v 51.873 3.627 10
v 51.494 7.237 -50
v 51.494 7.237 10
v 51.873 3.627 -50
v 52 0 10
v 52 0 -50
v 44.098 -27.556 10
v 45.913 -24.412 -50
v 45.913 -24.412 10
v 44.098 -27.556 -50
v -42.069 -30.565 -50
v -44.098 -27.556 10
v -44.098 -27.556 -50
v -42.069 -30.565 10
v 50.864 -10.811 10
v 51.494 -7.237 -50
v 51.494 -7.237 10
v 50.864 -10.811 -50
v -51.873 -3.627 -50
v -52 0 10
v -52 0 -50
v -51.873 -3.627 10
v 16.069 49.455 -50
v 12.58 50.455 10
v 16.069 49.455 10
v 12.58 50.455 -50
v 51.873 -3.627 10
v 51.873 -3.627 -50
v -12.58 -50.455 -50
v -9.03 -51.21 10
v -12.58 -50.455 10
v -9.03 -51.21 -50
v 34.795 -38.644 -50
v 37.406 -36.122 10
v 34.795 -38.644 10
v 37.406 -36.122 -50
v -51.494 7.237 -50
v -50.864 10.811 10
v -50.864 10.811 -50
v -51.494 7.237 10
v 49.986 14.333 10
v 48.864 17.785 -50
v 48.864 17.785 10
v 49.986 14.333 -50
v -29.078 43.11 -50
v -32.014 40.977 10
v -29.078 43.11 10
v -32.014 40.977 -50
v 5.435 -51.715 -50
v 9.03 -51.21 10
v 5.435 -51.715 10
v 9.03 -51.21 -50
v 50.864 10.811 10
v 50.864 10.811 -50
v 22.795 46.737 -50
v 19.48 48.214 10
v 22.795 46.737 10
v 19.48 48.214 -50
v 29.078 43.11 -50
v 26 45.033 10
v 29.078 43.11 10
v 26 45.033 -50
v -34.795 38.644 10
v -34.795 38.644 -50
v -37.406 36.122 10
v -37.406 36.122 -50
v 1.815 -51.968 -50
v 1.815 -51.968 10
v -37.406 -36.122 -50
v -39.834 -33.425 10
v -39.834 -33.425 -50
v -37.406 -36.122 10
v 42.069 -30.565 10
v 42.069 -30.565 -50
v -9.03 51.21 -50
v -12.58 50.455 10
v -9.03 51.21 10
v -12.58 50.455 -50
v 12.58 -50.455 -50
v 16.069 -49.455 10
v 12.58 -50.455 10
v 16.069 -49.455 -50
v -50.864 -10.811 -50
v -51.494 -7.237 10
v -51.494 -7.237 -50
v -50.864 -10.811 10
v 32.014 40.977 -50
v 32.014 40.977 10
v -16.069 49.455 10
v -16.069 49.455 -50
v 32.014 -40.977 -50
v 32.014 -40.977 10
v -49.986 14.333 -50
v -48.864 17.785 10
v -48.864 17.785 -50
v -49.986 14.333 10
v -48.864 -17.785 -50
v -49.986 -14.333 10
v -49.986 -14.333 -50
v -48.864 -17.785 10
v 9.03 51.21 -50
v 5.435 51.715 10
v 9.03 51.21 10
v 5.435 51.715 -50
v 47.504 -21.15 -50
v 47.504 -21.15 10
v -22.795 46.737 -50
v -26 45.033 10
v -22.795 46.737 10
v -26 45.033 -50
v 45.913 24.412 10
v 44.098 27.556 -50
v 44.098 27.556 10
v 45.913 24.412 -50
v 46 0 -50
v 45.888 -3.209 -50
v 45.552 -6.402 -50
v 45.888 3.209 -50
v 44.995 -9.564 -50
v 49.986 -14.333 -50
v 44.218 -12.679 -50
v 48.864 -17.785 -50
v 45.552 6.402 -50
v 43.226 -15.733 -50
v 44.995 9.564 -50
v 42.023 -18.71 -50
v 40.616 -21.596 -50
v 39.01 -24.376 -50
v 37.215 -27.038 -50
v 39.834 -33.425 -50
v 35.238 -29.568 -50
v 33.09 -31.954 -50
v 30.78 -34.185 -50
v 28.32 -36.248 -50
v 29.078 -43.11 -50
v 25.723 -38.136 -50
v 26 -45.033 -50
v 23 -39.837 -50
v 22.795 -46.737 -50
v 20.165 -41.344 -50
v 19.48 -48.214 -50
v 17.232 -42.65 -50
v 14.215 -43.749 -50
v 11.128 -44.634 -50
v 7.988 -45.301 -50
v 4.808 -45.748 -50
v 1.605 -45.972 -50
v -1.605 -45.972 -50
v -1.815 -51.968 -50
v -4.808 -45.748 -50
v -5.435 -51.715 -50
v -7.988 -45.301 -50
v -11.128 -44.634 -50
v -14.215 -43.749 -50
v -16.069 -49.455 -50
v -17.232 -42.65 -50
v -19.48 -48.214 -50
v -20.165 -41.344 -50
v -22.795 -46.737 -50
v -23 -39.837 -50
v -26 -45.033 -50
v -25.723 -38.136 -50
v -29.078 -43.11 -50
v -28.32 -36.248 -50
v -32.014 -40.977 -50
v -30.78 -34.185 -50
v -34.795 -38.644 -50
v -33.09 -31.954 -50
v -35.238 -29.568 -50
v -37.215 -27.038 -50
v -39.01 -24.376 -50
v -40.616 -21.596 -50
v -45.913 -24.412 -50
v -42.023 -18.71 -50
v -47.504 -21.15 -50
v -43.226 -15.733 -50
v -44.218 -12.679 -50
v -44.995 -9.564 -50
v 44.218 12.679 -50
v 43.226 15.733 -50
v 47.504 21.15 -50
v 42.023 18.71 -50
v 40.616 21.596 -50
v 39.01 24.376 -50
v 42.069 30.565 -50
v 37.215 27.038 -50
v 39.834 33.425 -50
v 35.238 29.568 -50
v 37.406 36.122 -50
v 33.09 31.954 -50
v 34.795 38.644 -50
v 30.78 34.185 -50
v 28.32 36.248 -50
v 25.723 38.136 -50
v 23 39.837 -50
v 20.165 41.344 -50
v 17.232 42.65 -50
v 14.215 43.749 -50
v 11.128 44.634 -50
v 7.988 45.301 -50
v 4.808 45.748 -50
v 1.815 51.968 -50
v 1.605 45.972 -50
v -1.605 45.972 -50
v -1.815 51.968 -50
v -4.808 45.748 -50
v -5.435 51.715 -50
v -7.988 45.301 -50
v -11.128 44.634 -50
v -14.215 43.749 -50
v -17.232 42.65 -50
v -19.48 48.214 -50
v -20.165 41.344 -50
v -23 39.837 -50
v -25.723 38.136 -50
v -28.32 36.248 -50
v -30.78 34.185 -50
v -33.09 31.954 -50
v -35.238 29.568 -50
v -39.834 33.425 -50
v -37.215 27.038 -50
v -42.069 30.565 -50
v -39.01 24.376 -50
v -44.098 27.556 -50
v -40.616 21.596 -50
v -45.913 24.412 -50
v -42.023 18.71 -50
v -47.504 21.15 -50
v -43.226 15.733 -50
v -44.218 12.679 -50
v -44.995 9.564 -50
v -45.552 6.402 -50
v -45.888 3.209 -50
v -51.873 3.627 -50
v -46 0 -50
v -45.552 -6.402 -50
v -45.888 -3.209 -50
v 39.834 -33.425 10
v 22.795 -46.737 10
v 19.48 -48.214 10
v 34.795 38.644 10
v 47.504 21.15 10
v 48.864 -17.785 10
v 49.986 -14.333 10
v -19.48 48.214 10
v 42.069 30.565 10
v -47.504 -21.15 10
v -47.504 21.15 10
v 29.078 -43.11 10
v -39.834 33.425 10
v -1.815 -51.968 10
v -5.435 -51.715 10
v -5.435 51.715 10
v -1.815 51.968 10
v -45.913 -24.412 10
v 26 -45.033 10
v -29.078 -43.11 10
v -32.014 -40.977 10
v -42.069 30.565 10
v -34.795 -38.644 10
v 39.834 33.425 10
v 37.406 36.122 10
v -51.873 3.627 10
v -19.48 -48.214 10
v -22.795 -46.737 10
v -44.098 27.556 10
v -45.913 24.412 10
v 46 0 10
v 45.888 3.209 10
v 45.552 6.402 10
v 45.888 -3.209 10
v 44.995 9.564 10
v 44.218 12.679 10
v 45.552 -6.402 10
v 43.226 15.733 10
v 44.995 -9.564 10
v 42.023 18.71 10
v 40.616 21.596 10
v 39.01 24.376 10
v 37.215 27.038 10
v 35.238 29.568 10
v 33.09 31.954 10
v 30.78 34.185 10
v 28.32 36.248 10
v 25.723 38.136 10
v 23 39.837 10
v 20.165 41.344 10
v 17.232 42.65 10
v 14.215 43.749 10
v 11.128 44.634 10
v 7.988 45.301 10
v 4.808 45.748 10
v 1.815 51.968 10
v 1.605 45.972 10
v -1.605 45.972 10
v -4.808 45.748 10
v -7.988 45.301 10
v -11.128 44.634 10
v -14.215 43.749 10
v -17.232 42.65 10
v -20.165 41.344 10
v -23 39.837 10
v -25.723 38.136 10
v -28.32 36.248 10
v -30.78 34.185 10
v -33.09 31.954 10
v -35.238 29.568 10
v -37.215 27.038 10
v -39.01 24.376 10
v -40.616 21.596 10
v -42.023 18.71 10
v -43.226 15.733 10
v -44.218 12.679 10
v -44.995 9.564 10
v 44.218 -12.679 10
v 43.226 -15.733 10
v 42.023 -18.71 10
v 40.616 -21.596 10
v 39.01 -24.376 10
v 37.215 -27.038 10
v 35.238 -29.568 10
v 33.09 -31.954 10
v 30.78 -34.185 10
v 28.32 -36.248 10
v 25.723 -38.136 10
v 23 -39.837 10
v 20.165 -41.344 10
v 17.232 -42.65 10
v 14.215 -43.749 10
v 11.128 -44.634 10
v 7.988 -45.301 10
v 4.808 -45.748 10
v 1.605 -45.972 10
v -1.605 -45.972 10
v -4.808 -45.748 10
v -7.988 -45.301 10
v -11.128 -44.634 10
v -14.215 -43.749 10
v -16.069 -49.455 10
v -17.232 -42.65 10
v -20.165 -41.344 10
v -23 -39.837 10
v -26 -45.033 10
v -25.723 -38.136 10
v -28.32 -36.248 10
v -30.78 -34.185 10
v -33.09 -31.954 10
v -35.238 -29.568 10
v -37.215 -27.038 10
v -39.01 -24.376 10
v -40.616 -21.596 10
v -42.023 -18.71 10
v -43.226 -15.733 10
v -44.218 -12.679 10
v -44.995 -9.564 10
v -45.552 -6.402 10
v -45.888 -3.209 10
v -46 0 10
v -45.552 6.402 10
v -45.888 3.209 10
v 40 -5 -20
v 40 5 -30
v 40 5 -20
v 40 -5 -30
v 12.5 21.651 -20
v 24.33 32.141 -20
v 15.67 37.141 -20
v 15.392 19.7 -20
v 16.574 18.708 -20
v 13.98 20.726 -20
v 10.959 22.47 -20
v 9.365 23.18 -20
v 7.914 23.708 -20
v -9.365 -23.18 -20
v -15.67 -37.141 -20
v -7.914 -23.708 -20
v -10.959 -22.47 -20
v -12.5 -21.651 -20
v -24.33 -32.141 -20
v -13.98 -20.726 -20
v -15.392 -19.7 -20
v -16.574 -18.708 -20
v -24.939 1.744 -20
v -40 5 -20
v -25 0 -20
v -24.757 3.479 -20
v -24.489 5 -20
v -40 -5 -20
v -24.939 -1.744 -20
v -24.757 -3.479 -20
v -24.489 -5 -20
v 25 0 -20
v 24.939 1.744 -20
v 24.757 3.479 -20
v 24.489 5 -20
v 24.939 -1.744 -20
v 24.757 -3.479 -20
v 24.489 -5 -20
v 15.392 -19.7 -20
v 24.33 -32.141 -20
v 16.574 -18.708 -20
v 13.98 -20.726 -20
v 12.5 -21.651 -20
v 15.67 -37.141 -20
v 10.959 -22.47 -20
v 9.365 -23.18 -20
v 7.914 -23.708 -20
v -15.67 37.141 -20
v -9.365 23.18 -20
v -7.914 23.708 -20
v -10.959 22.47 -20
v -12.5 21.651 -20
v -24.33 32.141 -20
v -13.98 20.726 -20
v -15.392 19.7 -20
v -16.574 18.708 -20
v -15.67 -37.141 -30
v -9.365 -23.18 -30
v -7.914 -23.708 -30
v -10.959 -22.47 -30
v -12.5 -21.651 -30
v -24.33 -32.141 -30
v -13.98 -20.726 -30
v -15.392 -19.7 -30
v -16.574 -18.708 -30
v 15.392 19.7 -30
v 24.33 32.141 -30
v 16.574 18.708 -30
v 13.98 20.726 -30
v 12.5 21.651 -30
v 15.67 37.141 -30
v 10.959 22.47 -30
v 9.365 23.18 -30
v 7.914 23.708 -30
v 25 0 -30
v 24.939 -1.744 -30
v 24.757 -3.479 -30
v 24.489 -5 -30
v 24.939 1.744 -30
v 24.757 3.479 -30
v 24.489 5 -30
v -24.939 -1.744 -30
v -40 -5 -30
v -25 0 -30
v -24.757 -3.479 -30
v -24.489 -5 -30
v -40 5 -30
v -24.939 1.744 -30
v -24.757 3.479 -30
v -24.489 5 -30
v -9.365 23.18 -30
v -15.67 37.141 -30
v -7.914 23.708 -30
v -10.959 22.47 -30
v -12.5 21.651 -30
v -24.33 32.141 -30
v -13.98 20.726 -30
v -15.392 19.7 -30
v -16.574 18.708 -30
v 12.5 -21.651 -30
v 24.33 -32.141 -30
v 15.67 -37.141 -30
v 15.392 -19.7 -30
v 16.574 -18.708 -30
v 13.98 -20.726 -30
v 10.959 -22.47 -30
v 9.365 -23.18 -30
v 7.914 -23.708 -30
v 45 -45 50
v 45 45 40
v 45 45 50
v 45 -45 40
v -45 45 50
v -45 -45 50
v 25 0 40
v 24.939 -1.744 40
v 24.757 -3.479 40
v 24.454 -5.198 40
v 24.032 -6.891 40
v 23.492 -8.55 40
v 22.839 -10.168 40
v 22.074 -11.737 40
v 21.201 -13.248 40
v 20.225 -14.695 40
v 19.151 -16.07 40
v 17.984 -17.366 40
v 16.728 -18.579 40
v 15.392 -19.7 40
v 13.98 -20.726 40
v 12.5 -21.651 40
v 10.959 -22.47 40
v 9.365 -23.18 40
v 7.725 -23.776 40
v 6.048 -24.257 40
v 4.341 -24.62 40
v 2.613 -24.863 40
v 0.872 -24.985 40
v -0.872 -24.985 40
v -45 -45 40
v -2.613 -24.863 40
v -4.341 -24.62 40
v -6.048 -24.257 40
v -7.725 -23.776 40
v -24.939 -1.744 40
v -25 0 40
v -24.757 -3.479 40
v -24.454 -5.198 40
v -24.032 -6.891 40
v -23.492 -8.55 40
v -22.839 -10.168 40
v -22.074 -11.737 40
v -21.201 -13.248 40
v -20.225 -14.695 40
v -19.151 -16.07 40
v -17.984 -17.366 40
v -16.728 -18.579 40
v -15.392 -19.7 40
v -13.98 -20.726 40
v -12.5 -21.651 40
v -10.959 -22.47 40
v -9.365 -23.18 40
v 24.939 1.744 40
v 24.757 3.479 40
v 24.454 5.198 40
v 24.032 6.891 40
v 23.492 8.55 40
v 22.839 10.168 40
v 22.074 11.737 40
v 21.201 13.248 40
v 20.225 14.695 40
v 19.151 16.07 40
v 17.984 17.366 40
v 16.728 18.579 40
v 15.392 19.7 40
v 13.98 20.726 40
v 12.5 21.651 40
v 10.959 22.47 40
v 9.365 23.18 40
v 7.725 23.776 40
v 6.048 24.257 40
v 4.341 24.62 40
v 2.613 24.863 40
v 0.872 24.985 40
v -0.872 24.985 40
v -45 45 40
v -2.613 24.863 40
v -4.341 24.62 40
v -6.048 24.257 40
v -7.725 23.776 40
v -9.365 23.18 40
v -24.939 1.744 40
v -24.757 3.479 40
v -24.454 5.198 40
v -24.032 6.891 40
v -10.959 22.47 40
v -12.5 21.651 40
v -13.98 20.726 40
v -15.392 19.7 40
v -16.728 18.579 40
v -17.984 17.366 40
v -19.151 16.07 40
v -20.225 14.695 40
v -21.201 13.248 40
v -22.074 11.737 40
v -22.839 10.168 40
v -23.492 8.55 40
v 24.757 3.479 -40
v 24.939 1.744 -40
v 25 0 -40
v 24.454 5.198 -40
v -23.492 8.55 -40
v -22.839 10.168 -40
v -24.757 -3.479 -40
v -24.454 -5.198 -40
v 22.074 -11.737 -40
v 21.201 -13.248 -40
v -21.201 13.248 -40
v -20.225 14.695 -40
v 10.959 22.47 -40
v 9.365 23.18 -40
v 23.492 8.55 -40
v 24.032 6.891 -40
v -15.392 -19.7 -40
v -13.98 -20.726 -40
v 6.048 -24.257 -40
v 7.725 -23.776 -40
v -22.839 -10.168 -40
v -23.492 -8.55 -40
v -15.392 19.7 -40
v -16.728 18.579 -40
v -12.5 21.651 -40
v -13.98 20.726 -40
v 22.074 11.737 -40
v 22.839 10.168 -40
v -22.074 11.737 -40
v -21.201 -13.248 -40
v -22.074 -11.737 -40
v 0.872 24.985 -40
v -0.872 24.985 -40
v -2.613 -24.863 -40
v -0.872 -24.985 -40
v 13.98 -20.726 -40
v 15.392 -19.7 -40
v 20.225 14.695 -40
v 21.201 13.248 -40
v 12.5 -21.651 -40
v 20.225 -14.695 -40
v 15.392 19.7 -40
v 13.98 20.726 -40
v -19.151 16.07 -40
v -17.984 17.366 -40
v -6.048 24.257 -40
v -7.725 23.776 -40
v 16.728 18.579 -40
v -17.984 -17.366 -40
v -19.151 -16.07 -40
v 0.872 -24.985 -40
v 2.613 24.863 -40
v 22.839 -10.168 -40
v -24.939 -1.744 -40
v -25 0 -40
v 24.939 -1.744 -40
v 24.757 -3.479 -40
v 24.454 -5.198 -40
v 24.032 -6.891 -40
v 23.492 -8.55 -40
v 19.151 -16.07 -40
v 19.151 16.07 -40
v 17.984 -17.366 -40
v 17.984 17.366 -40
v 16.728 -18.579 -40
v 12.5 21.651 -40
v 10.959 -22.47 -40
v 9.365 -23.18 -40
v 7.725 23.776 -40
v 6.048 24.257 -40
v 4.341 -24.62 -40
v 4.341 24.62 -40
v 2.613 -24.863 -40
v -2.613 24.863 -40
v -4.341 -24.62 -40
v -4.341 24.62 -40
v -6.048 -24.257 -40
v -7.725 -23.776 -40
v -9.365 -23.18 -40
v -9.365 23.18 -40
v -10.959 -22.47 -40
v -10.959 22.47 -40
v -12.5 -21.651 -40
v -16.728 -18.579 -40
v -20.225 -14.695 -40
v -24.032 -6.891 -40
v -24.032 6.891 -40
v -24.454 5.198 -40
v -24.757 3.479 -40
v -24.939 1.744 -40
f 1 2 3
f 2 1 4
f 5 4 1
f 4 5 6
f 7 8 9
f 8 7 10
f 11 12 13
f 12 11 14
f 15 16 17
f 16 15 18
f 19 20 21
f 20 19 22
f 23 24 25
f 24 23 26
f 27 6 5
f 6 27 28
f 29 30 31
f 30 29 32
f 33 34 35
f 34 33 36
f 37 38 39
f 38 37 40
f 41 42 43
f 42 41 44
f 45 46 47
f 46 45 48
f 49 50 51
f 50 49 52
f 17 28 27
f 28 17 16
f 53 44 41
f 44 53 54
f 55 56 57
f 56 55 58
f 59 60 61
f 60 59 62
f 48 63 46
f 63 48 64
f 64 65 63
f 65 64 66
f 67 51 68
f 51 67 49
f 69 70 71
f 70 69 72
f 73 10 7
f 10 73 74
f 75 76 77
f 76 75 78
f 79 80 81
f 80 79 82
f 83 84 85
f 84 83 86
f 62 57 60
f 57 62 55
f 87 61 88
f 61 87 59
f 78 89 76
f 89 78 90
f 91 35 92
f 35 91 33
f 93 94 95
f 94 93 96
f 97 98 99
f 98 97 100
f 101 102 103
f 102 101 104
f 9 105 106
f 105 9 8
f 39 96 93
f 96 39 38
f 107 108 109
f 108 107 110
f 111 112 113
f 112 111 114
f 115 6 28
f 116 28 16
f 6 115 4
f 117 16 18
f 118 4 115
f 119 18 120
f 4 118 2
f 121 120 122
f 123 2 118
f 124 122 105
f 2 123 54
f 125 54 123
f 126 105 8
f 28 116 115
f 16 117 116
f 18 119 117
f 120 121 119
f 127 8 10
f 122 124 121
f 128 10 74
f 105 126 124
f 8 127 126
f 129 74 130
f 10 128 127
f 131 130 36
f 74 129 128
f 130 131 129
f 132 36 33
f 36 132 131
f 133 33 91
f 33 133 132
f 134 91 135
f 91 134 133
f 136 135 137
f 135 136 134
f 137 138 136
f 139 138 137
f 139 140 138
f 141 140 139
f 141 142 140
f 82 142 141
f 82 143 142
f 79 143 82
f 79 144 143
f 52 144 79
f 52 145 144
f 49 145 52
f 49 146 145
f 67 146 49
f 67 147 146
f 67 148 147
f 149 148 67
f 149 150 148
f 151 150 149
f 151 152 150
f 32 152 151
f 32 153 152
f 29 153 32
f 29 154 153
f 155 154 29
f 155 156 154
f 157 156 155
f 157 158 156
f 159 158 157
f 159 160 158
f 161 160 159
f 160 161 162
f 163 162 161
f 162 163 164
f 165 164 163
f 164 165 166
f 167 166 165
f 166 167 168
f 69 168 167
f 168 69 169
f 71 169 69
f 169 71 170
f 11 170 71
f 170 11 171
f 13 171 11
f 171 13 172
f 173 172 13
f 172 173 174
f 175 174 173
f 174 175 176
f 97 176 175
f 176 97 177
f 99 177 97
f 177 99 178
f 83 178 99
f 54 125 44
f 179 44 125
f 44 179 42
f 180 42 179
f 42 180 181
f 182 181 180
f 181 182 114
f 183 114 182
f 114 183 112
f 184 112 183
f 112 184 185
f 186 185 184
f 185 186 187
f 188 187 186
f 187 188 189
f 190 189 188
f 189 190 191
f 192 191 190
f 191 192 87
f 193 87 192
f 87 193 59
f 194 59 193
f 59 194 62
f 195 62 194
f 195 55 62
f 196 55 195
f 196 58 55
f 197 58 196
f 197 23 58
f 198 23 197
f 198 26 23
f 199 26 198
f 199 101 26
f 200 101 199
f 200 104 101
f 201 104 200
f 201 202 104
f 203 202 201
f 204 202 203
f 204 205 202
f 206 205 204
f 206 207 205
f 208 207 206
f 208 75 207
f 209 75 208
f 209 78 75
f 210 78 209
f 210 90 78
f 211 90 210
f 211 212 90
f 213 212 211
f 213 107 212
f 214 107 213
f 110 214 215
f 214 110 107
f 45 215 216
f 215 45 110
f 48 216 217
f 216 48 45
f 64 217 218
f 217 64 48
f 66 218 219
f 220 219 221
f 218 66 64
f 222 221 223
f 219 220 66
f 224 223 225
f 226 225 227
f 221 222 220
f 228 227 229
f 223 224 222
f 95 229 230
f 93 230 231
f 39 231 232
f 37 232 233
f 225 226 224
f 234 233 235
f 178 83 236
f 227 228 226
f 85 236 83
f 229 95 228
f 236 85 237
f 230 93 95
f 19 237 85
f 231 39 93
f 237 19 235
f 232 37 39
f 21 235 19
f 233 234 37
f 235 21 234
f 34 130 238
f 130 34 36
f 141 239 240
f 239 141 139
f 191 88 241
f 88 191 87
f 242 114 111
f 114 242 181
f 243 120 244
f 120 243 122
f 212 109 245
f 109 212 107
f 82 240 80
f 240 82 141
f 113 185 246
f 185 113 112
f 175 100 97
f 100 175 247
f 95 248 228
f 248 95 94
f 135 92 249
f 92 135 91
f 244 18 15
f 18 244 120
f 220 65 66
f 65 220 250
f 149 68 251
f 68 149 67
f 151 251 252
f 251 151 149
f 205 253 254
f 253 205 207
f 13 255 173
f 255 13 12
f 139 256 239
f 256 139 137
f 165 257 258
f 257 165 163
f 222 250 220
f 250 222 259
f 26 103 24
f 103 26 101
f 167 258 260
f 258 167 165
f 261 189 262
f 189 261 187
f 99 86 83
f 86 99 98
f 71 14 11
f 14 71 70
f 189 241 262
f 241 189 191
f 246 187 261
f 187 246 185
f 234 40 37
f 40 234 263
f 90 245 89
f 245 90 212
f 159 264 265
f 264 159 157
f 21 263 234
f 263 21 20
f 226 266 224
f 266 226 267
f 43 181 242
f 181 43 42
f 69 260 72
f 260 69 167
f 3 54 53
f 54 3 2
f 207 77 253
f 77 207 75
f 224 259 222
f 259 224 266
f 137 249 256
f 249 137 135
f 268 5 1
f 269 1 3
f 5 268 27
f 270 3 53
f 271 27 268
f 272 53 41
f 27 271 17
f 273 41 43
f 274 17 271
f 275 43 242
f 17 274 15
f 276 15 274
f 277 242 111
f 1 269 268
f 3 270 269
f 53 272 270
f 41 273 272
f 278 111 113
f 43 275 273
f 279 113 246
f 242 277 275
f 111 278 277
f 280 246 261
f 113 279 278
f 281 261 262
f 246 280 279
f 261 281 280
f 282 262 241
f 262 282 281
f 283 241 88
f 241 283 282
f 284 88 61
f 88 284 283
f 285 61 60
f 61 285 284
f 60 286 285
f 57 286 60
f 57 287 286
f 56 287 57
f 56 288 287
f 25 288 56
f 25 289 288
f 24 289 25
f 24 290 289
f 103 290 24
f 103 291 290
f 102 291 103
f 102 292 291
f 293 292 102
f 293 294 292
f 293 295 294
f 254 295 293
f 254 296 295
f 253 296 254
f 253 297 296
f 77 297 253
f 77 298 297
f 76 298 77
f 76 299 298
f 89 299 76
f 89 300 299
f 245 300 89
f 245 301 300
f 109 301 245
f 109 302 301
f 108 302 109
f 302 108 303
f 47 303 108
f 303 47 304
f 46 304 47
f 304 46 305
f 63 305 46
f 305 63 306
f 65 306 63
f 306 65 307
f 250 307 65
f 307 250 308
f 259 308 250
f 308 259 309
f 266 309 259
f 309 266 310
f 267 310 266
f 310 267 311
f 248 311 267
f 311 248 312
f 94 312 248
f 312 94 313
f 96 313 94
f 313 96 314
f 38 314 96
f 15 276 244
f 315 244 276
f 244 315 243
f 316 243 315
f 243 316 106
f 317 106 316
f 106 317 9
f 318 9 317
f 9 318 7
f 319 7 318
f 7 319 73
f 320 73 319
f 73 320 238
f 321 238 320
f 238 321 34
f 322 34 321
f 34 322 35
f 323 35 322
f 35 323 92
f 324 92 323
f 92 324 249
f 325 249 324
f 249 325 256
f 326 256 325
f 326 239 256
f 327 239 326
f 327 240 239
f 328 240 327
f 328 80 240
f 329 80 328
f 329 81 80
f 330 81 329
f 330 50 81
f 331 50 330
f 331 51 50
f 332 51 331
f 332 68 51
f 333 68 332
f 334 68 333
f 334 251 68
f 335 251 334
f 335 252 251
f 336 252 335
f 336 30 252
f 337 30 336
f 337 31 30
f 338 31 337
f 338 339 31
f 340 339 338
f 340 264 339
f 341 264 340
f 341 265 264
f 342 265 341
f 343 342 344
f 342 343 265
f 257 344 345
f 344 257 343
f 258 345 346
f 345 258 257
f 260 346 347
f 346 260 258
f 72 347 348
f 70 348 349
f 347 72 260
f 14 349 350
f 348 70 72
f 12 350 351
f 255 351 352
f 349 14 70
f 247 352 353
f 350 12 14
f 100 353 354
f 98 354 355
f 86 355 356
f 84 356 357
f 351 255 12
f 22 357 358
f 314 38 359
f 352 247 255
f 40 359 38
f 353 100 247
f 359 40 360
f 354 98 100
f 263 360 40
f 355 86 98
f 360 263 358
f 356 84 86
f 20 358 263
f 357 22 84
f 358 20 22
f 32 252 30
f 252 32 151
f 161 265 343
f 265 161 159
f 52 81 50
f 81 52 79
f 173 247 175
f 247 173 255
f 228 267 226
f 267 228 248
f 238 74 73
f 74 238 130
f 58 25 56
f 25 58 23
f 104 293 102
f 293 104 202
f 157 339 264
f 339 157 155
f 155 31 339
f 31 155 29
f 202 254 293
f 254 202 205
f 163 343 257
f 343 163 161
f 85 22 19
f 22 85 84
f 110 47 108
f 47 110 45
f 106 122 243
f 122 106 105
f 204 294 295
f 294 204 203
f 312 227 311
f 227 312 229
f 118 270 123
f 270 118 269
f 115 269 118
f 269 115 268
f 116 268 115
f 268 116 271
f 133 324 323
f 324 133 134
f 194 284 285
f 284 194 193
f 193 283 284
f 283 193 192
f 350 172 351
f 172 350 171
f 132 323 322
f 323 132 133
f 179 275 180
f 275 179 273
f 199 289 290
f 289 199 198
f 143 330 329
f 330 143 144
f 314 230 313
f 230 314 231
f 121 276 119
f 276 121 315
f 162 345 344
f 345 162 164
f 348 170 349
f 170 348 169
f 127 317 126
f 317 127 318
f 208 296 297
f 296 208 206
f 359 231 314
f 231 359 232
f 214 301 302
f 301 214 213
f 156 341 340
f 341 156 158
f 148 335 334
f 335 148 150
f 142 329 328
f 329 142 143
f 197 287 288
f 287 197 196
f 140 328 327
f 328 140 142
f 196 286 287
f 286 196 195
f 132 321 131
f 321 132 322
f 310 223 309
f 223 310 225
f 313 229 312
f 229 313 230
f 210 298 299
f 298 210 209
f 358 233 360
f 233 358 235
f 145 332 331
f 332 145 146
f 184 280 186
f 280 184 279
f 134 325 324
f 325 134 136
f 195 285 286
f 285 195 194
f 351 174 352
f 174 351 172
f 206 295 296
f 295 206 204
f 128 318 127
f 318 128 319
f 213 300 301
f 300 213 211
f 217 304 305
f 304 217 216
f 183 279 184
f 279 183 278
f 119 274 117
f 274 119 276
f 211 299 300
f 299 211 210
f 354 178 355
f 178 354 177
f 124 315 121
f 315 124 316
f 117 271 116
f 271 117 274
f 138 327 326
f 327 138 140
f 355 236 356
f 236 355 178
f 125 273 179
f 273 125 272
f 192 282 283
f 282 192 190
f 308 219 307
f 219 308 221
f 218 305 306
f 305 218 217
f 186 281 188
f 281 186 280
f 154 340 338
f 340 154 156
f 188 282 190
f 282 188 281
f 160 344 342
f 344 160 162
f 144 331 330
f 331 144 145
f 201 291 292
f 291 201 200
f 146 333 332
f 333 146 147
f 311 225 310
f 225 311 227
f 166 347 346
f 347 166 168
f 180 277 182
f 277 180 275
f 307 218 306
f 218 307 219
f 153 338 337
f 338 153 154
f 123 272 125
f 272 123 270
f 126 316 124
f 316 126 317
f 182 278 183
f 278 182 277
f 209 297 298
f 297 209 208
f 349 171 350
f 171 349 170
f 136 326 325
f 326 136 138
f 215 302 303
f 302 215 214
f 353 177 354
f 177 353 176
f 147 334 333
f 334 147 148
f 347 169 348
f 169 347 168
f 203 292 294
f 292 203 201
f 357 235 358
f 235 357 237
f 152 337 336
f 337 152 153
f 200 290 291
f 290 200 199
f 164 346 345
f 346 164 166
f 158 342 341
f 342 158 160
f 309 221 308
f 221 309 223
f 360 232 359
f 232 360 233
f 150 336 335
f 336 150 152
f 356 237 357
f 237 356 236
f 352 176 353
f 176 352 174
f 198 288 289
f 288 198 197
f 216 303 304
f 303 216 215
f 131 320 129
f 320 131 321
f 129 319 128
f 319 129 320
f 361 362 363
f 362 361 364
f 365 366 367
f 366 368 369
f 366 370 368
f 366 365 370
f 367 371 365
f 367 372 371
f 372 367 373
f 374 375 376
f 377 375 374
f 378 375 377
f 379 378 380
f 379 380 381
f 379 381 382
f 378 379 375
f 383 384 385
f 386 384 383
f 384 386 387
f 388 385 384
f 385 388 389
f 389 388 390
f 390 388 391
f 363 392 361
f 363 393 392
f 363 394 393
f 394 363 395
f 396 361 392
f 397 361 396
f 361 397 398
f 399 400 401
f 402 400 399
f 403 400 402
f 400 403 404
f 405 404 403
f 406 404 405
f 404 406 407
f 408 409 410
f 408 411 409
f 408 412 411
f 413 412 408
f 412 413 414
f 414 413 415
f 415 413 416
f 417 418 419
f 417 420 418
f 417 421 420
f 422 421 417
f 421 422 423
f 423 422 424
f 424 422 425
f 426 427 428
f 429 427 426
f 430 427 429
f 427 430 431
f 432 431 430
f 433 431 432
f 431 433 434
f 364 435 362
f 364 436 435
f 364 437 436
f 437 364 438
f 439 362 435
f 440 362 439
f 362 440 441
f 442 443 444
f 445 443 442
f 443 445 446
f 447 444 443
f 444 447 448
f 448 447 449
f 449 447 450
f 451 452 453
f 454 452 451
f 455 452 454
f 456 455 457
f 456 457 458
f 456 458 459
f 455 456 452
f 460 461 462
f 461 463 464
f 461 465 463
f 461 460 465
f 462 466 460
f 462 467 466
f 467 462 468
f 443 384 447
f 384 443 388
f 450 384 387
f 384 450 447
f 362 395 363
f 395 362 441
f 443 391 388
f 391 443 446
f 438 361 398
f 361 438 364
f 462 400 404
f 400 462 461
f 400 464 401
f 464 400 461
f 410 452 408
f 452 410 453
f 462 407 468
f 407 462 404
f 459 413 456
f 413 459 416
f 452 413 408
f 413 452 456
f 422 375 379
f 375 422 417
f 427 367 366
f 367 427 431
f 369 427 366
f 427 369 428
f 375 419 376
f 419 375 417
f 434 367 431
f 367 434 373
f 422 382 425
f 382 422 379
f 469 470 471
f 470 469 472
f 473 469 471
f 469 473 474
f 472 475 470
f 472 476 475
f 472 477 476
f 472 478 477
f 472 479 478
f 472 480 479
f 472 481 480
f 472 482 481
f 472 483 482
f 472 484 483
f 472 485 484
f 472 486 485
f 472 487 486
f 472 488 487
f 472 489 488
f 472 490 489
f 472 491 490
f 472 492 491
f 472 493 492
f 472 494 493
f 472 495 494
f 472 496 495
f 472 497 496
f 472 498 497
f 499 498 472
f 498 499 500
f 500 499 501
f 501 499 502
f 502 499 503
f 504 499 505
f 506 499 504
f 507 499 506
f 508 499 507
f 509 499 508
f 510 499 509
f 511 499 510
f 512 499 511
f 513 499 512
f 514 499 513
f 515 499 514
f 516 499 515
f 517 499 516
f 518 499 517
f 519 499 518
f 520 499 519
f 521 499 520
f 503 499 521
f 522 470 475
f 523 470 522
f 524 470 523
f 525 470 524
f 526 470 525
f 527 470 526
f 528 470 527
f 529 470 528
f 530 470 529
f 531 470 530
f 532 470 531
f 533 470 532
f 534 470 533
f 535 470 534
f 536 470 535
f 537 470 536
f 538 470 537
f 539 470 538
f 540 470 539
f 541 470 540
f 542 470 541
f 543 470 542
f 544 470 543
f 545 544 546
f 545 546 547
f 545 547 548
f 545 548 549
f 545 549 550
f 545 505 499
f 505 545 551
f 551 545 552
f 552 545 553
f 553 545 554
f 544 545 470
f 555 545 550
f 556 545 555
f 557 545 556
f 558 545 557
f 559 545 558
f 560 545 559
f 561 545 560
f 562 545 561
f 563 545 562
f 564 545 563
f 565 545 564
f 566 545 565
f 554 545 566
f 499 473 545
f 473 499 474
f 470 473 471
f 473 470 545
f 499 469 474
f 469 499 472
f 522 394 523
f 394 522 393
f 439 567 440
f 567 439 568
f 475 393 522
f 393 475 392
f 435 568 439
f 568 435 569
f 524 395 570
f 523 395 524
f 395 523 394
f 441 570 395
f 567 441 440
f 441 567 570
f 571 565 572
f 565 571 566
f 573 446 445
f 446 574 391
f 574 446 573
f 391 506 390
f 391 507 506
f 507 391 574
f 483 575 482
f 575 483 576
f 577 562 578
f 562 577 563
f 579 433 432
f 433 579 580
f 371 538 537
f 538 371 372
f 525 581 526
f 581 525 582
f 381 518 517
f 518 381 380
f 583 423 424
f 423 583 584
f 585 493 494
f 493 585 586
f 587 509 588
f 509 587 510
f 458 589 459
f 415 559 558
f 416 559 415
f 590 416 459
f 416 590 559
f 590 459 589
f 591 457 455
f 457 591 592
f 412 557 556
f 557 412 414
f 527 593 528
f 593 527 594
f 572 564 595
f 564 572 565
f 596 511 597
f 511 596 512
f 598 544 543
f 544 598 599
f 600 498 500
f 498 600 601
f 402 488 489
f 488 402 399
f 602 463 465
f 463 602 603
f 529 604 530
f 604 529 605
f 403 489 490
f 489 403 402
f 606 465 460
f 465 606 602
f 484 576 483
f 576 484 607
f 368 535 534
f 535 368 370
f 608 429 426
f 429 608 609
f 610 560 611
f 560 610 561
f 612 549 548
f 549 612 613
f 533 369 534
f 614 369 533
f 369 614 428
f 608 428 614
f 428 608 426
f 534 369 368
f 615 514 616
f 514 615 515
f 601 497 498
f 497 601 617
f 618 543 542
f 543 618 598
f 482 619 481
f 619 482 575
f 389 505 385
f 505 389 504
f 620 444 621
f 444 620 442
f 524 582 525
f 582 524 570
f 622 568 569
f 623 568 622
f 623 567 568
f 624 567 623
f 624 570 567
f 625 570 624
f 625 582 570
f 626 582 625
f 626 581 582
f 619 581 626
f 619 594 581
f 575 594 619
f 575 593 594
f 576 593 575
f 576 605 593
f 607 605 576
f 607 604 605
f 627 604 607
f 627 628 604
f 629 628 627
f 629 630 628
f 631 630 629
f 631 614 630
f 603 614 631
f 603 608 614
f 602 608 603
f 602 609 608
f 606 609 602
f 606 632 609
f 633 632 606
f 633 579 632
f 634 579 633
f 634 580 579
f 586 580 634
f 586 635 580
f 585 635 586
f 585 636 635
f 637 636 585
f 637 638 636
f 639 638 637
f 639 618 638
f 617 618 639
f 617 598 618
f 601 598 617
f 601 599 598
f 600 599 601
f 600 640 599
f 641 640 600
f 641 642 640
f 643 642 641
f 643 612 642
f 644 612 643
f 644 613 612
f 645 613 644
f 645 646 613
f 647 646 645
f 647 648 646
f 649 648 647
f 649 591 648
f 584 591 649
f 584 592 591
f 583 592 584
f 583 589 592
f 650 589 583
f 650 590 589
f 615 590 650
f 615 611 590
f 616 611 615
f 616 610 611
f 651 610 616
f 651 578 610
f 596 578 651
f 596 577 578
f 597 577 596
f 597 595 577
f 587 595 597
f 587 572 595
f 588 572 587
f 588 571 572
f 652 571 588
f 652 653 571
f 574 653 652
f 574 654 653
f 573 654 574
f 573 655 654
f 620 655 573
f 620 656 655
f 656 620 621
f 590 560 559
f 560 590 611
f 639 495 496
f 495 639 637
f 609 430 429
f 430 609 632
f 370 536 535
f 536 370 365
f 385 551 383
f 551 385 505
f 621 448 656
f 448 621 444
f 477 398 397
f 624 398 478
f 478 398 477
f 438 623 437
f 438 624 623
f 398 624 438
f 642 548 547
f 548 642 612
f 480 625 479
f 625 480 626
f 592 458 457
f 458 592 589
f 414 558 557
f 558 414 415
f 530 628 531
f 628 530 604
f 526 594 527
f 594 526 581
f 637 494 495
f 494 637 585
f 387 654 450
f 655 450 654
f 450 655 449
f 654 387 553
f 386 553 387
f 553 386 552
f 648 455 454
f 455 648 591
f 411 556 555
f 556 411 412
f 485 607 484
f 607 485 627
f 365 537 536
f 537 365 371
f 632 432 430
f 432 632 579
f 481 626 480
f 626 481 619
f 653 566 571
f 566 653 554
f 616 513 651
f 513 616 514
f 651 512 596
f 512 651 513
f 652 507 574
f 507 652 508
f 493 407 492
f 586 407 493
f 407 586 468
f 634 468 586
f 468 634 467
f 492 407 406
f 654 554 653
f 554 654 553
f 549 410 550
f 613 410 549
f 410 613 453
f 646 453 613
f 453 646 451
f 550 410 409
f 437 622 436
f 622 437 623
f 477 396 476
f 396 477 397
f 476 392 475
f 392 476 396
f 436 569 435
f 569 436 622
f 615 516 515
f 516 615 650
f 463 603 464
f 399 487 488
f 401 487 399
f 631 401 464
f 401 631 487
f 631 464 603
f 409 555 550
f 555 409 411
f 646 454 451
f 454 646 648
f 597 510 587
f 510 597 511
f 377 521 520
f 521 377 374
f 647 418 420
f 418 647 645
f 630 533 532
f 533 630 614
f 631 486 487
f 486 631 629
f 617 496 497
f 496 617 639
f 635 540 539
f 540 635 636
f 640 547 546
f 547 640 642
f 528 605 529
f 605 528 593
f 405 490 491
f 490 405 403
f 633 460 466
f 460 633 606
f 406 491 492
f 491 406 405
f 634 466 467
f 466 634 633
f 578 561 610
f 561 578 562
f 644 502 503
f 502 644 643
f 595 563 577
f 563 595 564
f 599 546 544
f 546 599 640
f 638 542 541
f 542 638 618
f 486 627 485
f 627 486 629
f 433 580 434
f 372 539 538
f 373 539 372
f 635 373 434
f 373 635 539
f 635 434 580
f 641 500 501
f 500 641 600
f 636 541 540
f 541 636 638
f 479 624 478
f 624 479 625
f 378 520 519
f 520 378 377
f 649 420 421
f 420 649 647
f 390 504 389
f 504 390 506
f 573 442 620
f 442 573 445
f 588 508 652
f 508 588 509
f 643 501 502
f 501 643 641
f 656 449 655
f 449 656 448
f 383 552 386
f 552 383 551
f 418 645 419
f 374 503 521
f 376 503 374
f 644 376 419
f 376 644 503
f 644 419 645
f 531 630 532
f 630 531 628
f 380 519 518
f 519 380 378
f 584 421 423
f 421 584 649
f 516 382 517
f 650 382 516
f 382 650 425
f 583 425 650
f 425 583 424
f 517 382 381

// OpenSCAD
// ============================================================================
// DiveGuard heavy-class ROV - rov-platform/HLD.md
// 06_Propulsion_Vertical_Module - depth/trim/strafe thrusters
//
// Lifted from the design dialogue originally pasted into BACKLOG.md on main
// (2026-08 batch), preserved verbatim as authored there.
//
// Update 2026-08-08: OpenSCAD IS available in this sandbox (installed via apt
// for this verification pass - previously assumed unavailable; that
// assumption was wrong, corrected repo-wide, see BACKLOG.md). This file has
// been rendered (`openscad -o out.stl this.scad`) and confirmed a valid
// 2-manifold solid ("Simple: yes" in the render log) - real geometric
// validity, not just a paren-balance check. STEP export and an independent
// engineer re-check of dimension/tolerance claims before any
// part is fabricated from it.
// ============================================================================

// ==========================================
// DIVEGUARD: Propulsion Vertical Module (06)
// Material: Anodized Aluminum / POM-C
// Component: Vertical Thruster Pod & Deck Flange
// ==========================================

$fn = 90;

module vertical_thruster_module() {
    // 1. Верхний монтажный палубный фланец (прижимная пластина)
    color("Silver")
    translate([0, 0, 45])
        cube([90, 90, 10], center = true);

    // 2. Вертикальная цилиндрическая гильза мотора
    color("DarkGray")
    cylinder(h = 80, r = 25, center = true);

    // 3. Кольцевой защитный кожух вертикального винта (интегрирован в палубу)
    color("MidnightBlue")
    difference() {
        translate([0, 0, -20])
            cylinder(h = 60, r = 52, center = true);
        translate([0, 0, -20])
            cylinder(h = 62, r = 46, center = true);
    }

    // 4. Лопастной узел вертикального гребного винта
    color("Gold")
    translate([0, 0, -25])
    intersection() {
        cylinder(h = 12, r = 45, center = true);
        union() {
            for (i = [0 : 2]) {
                rotate([0, 0, i * 120])
                cube([80, 10, 10], center = true);
            }
        }
    }
}

vertical_thruster_module();
